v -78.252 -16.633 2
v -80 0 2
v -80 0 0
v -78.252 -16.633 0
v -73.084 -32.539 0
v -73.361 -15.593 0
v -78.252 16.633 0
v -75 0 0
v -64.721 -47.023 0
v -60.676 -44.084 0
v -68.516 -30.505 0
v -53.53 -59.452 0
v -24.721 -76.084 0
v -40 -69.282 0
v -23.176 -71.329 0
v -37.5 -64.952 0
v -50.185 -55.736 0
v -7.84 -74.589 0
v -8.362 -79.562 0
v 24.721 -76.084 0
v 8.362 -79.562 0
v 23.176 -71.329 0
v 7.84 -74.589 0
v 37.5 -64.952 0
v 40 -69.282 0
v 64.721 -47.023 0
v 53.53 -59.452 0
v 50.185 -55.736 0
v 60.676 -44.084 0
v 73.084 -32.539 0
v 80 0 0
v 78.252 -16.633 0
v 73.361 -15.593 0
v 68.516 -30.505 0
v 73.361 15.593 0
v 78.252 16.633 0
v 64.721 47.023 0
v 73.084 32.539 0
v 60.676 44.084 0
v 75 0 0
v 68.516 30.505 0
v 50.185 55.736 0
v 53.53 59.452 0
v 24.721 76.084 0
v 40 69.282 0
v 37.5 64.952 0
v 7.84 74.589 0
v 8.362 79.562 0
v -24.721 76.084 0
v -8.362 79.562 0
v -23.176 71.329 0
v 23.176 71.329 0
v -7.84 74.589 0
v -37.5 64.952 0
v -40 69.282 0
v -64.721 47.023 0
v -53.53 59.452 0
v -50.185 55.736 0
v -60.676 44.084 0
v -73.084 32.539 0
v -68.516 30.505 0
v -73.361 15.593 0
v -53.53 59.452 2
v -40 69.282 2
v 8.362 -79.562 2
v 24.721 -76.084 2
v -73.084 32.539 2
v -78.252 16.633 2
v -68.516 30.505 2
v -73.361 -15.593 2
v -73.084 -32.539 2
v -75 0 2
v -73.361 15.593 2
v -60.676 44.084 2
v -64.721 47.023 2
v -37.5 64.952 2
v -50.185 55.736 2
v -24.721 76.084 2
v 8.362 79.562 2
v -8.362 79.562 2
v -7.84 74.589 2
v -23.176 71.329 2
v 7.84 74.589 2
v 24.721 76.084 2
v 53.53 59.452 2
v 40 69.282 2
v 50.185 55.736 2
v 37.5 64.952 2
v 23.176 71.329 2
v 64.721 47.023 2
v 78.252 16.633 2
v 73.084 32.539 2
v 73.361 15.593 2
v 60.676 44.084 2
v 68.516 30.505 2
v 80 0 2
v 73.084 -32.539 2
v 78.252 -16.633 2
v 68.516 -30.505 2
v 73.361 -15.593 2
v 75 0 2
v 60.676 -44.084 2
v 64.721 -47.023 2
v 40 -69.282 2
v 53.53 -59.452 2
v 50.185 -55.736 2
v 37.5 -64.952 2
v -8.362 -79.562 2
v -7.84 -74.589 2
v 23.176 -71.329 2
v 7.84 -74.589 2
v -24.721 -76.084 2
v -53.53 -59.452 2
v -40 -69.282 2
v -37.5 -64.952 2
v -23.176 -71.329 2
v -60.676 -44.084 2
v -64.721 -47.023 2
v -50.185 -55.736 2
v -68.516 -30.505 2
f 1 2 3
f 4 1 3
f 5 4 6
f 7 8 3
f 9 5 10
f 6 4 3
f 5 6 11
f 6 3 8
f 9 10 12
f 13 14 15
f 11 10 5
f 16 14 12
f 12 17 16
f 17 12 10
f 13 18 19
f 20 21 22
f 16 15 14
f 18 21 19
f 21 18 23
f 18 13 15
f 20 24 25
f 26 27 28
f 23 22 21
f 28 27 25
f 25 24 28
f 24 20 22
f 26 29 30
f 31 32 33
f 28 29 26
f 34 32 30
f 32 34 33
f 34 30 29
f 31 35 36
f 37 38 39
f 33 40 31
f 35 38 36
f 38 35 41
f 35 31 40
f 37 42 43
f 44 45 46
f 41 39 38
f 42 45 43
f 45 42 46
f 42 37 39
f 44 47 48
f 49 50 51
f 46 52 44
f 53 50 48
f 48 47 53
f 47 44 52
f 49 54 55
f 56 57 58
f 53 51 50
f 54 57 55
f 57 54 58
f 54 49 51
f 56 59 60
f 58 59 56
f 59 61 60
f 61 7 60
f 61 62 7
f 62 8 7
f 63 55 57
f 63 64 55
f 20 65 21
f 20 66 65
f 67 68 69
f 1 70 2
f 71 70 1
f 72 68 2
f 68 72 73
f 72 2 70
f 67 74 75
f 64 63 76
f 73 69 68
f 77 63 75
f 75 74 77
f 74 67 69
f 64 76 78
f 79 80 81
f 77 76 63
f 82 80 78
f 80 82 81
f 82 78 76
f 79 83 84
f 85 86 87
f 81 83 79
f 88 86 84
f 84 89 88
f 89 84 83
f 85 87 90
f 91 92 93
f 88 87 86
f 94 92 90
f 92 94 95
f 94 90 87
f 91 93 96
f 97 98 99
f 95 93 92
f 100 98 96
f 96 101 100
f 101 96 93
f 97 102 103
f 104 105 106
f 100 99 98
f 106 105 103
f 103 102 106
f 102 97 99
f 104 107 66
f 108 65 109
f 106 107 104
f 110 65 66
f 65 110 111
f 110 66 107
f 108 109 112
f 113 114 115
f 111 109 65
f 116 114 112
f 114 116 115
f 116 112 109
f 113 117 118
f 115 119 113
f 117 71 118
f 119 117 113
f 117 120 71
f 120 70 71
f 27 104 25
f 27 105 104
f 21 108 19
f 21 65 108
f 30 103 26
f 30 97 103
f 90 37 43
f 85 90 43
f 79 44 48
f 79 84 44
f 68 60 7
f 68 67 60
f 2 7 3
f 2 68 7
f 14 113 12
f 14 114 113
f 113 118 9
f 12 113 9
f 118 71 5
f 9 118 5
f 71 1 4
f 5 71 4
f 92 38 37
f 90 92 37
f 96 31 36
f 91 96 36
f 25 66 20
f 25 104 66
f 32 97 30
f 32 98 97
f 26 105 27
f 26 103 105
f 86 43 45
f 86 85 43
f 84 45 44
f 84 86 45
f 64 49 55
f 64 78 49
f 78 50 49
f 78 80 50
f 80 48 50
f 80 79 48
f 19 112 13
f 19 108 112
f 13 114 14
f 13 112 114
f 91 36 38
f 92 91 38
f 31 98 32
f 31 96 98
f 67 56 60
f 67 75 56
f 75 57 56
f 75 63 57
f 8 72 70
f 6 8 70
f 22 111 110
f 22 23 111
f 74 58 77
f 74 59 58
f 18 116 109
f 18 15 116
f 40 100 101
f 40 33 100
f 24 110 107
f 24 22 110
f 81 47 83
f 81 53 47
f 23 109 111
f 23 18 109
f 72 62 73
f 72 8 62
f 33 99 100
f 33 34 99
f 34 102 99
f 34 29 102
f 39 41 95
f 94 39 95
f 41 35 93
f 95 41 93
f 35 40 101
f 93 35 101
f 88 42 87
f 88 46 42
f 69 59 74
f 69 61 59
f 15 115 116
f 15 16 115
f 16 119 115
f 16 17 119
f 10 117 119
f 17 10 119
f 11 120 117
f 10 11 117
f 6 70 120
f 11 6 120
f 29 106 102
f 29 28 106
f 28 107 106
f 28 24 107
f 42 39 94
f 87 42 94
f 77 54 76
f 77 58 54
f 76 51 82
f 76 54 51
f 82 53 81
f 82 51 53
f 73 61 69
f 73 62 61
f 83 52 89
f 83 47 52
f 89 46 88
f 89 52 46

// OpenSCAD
	difference(){
	 cylinder(r=80,h=2);
	 translate([0,0,-.1]) cylinder(r=75,h=2.2);
	}
